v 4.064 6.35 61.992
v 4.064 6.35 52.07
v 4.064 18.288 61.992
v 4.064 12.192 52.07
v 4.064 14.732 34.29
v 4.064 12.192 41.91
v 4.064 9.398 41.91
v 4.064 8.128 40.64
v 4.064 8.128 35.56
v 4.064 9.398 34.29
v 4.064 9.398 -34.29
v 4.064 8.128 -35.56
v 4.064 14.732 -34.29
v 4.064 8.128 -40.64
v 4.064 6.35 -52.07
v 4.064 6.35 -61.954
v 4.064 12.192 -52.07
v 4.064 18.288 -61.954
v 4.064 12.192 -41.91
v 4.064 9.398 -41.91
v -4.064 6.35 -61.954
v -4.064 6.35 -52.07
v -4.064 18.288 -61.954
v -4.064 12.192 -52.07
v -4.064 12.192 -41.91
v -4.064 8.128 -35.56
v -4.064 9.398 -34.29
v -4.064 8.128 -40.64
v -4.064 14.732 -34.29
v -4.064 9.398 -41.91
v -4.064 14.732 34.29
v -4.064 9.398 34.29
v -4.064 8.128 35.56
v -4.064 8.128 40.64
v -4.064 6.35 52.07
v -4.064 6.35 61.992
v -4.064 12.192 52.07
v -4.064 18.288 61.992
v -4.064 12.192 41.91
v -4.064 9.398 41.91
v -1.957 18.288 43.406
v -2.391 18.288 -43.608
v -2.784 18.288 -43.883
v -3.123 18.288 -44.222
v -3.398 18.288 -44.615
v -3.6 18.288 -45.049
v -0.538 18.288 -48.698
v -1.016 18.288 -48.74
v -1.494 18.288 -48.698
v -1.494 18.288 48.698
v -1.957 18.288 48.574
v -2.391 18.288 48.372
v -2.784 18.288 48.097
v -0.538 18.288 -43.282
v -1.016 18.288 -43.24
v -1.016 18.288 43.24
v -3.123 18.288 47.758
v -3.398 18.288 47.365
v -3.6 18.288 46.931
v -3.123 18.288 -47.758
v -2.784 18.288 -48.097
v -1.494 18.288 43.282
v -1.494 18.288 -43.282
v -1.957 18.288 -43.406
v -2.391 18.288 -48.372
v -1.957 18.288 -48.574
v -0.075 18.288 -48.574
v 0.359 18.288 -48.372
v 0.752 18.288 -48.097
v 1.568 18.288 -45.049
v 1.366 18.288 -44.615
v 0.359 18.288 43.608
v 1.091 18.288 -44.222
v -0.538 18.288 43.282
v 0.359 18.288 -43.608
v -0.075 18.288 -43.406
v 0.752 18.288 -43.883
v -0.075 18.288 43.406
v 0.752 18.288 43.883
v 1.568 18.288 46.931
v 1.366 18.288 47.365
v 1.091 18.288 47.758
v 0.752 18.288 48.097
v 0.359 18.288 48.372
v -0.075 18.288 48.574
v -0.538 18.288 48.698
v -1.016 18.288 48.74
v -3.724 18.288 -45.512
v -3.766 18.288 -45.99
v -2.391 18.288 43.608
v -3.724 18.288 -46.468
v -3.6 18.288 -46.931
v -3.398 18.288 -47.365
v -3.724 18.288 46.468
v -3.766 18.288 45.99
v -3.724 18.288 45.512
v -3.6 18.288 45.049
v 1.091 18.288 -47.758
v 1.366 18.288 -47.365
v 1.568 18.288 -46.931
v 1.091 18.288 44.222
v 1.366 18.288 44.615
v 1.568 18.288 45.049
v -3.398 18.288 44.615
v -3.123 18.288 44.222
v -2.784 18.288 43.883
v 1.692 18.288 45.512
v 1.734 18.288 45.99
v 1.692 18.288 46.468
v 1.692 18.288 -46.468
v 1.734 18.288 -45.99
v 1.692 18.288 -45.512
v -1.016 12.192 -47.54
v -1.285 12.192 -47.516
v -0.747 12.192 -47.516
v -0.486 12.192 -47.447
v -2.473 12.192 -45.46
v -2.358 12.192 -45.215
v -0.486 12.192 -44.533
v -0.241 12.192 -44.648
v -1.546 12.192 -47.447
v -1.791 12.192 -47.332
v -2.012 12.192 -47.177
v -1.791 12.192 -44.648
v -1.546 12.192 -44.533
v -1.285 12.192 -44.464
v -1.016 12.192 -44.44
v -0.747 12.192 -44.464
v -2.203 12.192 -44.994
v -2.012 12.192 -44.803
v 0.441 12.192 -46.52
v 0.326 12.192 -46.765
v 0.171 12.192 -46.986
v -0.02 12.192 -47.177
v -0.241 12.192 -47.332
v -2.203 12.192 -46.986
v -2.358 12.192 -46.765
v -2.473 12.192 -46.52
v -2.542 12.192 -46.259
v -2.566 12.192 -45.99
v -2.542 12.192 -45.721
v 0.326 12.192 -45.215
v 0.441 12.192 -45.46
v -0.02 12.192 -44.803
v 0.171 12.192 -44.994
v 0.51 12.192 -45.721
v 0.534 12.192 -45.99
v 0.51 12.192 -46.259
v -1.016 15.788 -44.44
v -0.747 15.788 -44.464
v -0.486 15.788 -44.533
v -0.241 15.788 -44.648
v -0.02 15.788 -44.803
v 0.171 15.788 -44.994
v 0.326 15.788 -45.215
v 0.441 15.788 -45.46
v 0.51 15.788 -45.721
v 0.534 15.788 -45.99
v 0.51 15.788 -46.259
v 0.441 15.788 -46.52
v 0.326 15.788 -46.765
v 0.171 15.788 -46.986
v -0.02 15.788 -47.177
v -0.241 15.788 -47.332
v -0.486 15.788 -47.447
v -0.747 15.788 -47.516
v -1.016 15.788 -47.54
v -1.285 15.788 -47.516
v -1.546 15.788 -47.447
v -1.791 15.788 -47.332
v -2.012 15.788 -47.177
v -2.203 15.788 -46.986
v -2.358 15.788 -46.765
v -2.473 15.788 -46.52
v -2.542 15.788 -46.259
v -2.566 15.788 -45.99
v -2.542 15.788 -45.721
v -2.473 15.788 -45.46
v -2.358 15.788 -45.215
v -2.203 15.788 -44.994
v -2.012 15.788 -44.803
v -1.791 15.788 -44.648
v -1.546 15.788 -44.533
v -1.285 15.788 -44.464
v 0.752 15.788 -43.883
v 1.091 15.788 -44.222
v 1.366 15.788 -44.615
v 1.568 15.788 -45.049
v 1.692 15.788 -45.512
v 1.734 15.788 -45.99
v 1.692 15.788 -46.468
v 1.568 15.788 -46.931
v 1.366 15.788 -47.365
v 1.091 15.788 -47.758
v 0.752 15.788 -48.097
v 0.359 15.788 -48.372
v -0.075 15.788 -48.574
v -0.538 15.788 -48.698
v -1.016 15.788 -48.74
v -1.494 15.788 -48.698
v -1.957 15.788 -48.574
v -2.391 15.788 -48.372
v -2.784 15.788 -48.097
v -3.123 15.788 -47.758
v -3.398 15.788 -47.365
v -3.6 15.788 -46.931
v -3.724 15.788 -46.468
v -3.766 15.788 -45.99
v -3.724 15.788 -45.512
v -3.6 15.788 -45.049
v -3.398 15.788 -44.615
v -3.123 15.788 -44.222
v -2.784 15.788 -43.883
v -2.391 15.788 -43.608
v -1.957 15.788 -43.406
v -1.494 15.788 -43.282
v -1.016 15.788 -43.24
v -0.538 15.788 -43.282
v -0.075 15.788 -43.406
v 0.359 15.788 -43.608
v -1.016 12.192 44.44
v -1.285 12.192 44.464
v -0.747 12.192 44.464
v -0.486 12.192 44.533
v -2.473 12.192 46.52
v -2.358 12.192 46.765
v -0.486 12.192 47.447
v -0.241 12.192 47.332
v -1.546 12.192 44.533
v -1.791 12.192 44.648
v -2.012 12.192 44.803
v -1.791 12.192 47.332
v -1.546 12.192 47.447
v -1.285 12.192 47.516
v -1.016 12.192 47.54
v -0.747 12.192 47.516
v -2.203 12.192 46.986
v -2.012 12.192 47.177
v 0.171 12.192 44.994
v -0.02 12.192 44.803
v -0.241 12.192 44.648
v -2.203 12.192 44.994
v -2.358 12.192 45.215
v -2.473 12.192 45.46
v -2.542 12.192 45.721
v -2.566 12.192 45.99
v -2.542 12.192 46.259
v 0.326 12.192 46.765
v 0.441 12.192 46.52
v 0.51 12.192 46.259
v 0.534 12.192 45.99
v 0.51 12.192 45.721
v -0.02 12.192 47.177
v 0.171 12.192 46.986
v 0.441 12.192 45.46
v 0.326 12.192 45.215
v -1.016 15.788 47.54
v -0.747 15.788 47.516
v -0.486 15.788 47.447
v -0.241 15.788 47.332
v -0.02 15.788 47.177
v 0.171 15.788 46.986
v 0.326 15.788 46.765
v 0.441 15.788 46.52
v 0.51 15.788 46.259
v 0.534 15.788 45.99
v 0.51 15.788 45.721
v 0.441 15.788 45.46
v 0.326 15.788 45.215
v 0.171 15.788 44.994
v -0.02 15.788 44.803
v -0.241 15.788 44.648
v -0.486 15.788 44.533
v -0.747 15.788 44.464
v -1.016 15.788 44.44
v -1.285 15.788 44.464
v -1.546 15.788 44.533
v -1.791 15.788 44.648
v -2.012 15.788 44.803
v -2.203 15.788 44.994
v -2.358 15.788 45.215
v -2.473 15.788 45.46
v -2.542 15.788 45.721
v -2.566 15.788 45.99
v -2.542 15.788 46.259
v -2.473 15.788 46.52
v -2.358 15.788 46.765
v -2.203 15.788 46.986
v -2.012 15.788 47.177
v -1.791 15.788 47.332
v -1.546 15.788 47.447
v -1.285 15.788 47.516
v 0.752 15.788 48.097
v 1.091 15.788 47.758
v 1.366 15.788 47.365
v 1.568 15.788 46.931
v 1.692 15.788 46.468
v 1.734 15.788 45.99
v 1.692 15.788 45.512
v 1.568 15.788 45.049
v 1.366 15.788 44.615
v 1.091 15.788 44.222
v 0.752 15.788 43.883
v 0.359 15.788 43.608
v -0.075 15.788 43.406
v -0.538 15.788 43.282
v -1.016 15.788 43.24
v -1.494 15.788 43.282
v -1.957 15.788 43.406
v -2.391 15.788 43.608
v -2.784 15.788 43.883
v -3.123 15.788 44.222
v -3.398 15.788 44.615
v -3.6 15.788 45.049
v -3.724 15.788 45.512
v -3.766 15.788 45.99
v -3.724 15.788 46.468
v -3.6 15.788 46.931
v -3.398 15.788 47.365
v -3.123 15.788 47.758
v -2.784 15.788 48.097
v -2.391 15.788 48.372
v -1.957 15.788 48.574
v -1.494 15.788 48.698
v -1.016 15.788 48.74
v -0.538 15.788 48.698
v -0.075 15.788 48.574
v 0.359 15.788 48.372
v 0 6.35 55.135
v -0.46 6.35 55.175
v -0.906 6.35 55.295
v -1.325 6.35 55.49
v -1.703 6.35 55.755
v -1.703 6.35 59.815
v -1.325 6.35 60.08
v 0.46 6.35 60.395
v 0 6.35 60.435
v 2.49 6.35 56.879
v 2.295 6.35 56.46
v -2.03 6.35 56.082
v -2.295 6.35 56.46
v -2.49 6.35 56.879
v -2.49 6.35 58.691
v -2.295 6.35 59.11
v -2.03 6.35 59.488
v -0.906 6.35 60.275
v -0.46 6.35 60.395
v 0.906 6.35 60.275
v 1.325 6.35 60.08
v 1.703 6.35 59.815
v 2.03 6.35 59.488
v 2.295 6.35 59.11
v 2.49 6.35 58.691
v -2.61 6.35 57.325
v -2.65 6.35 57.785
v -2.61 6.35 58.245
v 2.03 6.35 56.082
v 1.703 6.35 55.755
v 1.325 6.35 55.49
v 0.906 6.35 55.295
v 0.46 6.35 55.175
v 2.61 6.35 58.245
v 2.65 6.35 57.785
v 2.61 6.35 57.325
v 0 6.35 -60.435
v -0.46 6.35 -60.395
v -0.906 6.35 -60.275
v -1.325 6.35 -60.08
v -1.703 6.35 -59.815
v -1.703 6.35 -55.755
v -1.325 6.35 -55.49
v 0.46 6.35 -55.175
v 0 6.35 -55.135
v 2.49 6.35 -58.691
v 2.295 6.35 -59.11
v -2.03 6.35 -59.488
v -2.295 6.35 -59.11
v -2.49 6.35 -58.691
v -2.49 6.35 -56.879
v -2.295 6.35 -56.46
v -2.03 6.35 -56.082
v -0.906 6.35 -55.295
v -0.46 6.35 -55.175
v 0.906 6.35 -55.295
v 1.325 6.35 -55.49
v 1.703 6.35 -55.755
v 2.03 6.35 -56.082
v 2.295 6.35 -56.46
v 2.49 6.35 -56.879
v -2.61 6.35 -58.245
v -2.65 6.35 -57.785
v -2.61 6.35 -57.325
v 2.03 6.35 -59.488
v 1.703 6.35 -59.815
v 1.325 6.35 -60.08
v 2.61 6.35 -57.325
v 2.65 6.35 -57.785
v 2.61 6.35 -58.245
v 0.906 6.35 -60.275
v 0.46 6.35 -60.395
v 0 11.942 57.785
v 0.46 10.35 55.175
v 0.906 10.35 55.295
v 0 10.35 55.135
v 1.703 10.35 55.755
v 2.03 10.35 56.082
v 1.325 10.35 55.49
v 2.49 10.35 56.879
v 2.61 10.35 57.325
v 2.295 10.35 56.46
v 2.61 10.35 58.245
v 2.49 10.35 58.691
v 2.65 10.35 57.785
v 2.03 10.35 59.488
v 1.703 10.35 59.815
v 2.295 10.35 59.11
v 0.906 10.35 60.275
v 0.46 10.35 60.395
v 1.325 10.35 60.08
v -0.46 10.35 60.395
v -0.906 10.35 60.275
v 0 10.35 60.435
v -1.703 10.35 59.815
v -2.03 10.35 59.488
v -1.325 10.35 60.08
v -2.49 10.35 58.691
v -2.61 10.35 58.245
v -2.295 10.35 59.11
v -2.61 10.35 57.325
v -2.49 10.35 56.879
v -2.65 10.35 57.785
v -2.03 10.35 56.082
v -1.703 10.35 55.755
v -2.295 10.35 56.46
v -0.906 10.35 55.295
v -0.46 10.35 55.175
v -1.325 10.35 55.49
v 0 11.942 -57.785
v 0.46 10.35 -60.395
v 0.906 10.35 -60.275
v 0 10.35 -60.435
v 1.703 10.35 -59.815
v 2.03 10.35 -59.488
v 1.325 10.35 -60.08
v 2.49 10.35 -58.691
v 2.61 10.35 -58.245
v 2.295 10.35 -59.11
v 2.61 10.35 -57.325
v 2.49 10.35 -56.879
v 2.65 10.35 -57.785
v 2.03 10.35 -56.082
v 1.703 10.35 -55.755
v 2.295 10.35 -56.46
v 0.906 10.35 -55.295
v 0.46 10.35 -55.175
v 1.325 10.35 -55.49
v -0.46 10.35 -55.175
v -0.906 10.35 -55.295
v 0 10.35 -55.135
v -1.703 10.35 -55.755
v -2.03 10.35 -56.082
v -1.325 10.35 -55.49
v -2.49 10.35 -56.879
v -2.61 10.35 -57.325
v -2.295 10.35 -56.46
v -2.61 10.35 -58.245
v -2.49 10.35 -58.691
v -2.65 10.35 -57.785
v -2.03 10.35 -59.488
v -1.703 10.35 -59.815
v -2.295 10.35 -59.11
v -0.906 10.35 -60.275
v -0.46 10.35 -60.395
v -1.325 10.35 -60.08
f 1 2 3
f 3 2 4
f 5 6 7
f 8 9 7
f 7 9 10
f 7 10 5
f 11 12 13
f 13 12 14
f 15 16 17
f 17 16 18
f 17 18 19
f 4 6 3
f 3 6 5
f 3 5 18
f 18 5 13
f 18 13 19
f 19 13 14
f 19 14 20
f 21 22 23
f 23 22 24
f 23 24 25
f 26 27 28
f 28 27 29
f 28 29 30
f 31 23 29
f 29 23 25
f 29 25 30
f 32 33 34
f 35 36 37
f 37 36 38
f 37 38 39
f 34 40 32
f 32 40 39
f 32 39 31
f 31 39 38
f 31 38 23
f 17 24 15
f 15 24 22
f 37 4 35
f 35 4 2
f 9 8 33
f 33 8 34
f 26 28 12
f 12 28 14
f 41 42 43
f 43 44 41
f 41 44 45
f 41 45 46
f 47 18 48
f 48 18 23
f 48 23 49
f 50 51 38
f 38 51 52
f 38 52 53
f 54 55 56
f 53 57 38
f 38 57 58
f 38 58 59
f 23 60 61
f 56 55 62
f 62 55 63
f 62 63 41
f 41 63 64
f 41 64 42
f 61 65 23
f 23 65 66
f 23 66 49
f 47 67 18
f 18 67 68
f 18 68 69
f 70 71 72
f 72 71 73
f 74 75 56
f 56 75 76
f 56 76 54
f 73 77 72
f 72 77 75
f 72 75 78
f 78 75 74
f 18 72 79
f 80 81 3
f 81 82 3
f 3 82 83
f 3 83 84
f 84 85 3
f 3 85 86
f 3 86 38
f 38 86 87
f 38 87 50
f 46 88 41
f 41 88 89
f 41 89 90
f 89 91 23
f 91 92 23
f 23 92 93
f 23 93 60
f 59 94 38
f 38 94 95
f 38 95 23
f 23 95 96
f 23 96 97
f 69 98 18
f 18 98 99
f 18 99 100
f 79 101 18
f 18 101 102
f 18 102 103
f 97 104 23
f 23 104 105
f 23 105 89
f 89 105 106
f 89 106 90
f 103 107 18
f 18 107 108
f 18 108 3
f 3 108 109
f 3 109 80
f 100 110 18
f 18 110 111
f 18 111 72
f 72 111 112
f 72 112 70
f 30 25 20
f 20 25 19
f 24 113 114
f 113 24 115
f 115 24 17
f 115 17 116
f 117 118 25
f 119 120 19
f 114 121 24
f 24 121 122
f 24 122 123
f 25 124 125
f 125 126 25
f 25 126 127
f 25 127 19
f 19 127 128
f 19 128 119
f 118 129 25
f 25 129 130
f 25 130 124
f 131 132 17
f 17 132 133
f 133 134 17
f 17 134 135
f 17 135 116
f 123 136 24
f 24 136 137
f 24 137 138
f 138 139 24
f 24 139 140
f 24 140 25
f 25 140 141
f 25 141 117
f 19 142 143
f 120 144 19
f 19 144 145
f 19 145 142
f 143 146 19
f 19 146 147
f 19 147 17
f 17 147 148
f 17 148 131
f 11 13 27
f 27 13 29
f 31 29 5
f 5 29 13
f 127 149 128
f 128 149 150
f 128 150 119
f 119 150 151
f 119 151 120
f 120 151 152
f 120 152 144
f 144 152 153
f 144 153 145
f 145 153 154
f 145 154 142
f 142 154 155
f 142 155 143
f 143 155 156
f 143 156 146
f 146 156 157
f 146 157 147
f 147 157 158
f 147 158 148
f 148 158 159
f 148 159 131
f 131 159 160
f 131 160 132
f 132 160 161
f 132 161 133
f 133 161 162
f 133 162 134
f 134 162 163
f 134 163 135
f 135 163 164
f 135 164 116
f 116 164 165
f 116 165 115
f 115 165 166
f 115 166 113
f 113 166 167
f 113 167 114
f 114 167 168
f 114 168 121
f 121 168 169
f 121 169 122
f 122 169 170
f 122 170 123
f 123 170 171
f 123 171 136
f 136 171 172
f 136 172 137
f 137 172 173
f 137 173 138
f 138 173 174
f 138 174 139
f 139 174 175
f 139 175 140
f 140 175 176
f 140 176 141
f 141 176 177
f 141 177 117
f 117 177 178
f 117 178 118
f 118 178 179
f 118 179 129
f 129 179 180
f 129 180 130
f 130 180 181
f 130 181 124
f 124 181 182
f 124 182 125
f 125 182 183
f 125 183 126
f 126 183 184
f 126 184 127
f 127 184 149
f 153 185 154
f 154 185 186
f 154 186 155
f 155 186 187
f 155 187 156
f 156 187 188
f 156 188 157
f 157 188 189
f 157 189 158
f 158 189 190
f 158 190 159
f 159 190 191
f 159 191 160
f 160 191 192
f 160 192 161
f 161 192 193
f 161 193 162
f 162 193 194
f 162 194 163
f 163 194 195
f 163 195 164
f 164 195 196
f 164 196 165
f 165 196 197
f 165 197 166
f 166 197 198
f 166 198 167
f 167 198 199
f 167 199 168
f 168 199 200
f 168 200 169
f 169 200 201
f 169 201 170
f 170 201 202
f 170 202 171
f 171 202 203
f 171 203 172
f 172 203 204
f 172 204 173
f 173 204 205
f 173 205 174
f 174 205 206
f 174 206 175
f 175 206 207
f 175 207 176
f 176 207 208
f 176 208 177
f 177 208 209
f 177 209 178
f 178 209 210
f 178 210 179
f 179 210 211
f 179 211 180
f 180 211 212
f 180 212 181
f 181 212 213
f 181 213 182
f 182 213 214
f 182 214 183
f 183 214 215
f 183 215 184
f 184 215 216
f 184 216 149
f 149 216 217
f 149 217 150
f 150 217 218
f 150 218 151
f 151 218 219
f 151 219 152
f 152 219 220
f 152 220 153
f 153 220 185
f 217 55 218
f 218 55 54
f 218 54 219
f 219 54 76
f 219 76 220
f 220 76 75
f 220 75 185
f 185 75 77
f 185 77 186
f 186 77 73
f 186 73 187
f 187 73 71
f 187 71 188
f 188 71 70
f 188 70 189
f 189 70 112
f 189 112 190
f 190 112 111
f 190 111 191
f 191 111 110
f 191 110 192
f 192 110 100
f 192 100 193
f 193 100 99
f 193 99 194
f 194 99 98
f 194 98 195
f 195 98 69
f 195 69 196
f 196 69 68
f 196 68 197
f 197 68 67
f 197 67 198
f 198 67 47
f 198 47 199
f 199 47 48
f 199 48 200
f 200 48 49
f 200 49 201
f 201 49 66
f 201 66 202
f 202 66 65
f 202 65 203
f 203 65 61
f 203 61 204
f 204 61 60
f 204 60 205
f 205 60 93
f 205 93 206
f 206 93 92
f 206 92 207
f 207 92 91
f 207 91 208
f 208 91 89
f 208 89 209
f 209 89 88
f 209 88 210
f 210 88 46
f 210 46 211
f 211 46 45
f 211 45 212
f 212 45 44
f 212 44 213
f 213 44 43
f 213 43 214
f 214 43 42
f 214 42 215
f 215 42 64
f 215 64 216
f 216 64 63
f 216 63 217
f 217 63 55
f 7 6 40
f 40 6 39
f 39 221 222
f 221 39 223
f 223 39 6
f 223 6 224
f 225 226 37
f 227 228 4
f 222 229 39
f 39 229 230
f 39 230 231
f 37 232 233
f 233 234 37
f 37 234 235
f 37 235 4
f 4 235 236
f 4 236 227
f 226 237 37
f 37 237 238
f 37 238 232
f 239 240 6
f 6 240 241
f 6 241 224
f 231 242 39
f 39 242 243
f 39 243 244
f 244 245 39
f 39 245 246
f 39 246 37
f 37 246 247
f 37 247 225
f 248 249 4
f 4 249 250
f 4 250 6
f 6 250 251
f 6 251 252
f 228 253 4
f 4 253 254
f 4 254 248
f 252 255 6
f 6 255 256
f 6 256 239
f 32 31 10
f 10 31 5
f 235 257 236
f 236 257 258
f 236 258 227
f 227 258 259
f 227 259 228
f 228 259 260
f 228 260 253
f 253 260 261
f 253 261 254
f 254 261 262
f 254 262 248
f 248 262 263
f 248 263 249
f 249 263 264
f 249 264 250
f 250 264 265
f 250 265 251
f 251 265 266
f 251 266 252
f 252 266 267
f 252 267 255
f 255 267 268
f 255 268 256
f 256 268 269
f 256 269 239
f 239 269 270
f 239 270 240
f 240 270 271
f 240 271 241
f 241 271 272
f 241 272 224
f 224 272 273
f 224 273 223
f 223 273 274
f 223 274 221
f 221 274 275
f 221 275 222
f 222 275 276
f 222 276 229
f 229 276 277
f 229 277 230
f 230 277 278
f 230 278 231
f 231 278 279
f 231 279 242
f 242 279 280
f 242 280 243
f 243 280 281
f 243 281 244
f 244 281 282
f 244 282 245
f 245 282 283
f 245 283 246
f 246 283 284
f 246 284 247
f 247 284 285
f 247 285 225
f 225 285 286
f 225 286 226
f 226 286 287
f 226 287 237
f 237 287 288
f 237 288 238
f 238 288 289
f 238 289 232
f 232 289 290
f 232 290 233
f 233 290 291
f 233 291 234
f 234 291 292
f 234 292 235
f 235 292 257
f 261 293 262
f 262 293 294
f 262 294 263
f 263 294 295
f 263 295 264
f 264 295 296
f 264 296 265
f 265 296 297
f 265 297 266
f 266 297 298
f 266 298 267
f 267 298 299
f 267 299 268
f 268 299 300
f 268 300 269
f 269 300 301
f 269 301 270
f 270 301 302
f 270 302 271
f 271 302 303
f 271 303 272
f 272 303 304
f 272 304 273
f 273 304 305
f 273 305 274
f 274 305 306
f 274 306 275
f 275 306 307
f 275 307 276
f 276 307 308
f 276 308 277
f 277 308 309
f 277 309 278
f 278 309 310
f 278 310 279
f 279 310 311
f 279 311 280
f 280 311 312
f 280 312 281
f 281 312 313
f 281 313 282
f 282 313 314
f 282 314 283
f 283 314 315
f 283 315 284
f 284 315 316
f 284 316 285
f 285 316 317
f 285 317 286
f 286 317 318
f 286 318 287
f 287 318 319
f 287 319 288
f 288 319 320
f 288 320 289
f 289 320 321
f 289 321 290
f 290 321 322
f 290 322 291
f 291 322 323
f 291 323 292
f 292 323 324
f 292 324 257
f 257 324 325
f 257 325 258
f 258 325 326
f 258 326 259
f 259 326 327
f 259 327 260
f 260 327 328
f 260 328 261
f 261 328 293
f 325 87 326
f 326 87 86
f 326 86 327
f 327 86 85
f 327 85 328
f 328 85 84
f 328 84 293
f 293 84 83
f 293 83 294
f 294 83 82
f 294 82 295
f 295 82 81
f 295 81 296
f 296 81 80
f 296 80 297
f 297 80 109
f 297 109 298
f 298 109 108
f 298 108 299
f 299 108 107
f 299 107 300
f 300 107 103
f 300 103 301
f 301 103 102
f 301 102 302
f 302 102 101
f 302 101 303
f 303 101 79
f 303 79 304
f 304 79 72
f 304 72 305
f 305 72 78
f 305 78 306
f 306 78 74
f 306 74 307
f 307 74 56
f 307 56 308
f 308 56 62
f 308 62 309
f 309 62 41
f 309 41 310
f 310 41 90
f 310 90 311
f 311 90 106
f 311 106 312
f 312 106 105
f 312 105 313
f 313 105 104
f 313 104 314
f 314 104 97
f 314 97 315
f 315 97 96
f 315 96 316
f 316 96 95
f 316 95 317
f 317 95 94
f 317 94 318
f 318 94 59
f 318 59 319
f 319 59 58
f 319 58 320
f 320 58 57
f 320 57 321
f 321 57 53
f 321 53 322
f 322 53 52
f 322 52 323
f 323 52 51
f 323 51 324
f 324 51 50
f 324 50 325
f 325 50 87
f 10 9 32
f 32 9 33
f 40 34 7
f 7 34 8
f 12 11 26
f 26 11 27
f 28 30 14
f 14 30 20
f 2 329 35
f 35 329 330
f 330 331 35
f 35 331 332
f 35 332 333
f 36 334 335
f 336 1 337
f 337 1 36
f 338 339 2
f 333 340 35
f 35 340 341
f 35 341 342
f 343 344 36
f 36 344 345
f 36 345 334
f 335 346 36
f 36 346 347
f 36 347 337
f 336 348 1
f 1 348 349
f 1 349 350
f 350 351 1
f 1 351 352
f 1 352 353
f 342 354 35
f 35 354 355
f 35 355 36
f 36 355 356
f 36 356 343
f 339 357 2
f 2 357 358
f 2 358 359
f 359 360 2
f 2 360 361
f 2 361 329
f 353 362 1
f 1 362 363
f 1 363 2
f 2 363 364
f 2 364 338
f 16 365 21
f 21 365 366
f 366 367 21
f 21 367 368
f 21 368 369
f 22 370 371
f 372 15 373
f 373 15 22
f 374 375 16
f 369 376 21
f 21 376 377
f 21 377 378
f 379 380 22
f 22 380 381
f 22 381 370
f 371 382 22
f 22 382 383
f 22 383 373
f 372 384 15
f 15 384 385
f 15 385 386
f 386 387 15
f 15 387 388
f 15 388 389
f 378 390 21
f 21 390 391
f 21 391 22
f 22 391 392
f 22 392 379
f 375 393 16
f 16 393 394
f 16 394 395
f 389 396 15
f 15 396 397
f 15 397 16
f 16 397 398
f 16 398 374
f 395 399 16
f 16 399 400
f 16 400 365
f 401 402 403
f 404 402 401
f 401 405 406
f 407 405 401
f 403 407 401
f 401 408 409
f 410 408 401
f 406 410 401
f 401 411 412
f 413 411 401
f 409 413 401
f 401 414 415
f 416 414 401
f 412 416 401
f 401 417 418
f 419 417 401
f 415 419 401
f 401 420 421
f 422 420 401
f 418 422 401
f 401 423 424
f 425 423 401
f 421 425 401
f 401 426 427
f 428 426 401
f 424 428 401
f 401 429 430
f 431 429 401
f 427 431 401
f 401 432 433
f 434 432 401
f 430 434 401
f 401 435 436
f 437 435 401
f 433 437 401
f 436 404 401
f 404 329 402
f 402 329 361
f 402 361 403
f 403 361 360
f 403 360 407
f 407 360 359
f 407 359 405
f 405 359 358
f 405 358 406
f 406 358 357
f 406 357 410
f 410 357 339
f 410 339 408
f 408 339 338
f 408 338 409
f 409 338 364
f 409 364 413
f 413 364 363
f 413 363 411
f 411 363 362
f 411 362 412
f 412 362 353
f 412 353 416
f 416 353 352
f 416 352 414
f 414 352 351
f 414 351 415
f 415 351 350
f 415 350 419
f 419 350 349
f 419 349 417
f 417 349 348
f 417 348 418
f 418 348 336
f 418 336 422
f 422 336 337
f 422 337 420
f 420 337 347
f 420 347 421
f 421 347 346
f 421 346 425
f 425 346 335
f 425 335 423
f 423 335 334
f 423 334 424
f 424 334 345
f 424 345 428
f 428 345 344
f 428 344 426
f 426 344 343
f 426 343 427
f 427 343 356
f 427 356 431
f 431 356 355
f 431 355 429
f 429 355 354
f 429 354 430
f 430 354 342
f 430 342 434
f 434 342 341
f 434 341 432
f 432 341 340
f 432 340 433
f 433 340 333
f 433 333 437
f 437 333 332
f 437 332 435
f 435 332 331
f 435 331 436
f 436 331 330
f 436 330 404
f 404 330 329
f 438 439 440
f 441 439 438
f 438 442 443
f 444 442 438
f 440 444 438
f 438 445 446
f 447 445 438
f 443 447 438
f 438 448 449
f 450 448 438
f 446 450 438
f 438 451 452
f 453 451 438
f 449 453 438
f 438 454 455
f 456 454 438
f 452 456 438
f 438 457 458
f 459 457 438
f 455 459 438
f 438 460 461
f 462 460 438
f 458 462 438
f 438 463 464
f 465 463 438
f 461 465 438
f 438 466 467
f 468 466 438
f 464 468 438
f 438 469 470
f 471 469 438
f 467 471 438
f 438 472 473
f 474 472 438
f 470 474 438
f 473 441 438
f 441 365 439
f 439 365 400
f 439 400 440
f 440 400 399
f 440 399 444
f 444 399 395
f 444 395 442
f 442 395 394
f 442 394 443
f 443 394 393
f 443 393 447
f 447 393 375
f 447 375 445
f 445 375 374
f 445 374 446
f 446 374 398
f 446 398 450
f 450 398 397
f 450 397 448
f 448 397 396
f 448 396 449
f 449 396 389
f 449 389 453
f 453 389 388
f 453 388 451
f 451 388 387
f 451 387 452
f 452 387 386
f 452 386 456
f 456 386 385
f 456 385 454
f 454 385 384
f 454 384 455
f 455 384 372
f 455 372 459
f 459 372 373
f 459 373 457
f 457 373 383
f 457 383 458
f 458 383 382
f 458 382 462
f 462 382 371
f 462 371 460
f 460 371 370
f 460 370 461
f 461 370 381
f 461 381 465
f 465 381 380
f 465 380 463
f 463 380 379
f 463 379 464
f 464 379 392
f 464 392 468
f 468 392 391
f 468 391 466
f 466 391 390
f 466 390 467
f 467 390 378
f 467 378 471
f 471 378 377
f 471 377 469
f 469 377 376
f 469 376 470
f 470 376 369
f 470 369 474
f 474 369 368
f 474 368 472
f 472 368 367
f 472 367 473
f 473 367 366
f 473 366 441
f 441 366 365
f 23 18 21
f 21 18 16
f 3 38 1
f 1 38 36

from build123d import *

# Parameters (mm, degrees)
SKETCH1_W                        = 8.128
SKETCH1_H                        = 127
BOSS_EXTRUDE1_DEPTH              = 18.288
SKETCH2_W                        = 8.128
SKETCH2_H                        = 104.14
CUT_EXTRUDE1_DEPTH               = 8.128
SKETCH4_W                        = 8.128
SKETCH4_H                        = 10.16
CUT_EXTRUDE2_DEPTH               = 4.064
SKETCH5_W                        = 8.128
SKETCH5_H                        = 34.29
CUT_EXTRUDE4_DEPTH               = 6.604
CBORE_FOR_M2_5_SHCS1_D           = 3.1
CBORE_FOR_M2_5_SHCS1_CBORE_D     = 5.5
CBORE_FOR_M2_5_SHCS1_CBORE_DEPTH = 2.5
CHAMFER1_SIZE                    = 1.27
SKETCH17_W                       = 8.128
SKETCH17_H                       = 127
CUT_EXTRUDE5_DEPTH               = 6.35
SKETCH18_W                       = 8.128
SKETCH18_H                       = 1.546440773
CUT_EXTRUDE6_DEPTH               = 12.938
SKETCH19_W                       = 8.128
SKETCH19_H                       = 1.507728281
CUT_EXTRUDE7_DEPTH               = 12.938


with BuildPart() as part:
    # Sketch1 → Boss-Extrude1 (new body)
    with BuildSketch(Plane(origin=(0, 0, 0), x_dir=(1, 0, 0), z_dir=(0, 1, 0))):
        Rectangle(SKETCH1_W, SKETCH1_H)
    extrude(amount=BOSS_EXTRUDE1_DEPTH)

    # Sketch2 → Cut-Extrude1 (cut)
    with BuildSketch(Plane.XZ):
        Rectangle(SKETCH2_W, SKETCH2_H)
    extrude(amount=-CUT_EXTRUDE1_DEPTH, mode=Mode.SUBTRACT)

    # Sketch4 → Cut-Extrude2 (cut)
    with BuildSketch(Plane.XZ.offset(-8.128)):
        with Locations((0, -46.99)):
            Rectangle(SKETCH4_W, SKETCH4_H)
    cut_extrude2 = extrude(amount=-CUT_EXTRUDE2_DEPTH, mode=Mode.SUBTRACT)

    # Sketch5 → Cut-Extrude4 (cut)
    with BuildSketch(Plane.XZ.offset(-8.128)):
        with Locations((0, -17.145)):
            Rectangle(SKETCH5_W, SKETCH5_H)
    cut_extrude4 = extrude(amount=-CUT_EXTRUDE4_DEPTH, mode=Mode.SUBTRACT)

    # CBORE for M2.5 SHCS1 (through all)
    with Locations(Plane(origin=(0, 18.288, 0), x_dir=(1, 0, 0), z_dir=(0, 1, 0))):
        with Locations((-1.016, 45.99)):
            cbore_for_m2_5_shcs1 = CounterBoreHole(CBORE_FOR_M2_5_SHCS1_D / 2, CBORE_FOR_M2_5_SHCS1_CBORE_D / 2, CBORE_FOR_M2_5_SHCS1_CBORE_DEPTH)

    # Mirror1: Cut-Extrude2, Cut-Extrude4 across plane
    add(cut_extrude2.mirror(Plane(origin=(4.064, 14.732, 0), x_dir=(1, 0, 0), z_dir=(0, 0, 1))), mode=Mode.SUBTRACT)
    add(cut_extrude4.mirror(Plane(origin=(4.064, 14.732, 0), x_dir=(1, 0, 0), z_dir=(0, 0, 1))), mode=Mode.SUBTRACT)

    # Mirror2: CBORE for M2.5 SHCS1 across plane
    add(cbore_for_m2_5_shcs1.mirror(Plane.XY), mode=Mode.SUBTRACT)

    # Sketch15 → Ø1.0mm Dowel Hole1 (revolve, cut)
    with BuildSketch(Plane(origin=(0, 0, -57.785), x_dir=(0, 0, -1), z_dir=(1, 0, 0))):
        Polygon((0, 0), (0, 11.94227264), (2.65, 10.349992), (2.65, 0), align=None)
    f_1_0mm_dowel_hole1 = revolve(axis=Axis((0, -6.35, -57.785), (0, 1, 0)), mode=Mode.SUBTRACT)

    # Mirror3: Ø1.0mm Dowel Hole1 across plane
    add(f_1_0mm_dowel_hole1.mirror(Plane.XY), mode=Mode.SUBTRACT)

    # Chamfer1
    chamfer1_edges = [part.edges().sort_by_distance(p)[0] for p in [
        (0, 0, 52.07),
        (0, 0, -52.07),
        (0, 8.128, -41.91),
        (0, 0, 63.5),
        (0, 8.128, -34.29),
        (0, 0, -63.5),
        (0, 8.128, 41.91),
        (0, 8.128, 34.29),
    ]]
    chamfer(chamfer1_edges, length=CHAMFER1_SIZE)

    # Sketch17 → Cut-Extrude5 (cut)
    with BuildSketch(Plane.XZ):
        Rectangle(SKETCH17_W, SKETCH17_H)
    extrude(amount=-CUT_EXTRUDE5_DEPTH, mode=Mode.SUBTRACT)

    # Sketch18 → Cut-Extrude6 (cut, through all)
    with BuildSketch(Plane.XZ.offset(-6.35)):
        with Locations((0, -62.726779614)):
            Rectangle(SKETCH18_W, SKETCH18_H)
    extrude(amount=-CUT_EXTRUDE6_DEPTH, mode=Mode.SUBTRACT)

    # Sketch19 → Cut-Extrude7 (cut, through all)
    with BuildSketch(Plane.XZ.offset(-6.35)):
        with Locations((0, 62.74613586)):
            Rectangle(SKETCH19_W, SKETCH19_H)
    extrude(amount=-CUT_EXTRUDE7_DEPTH, mode=Mode.SUBTRACT)


solid = part.part
